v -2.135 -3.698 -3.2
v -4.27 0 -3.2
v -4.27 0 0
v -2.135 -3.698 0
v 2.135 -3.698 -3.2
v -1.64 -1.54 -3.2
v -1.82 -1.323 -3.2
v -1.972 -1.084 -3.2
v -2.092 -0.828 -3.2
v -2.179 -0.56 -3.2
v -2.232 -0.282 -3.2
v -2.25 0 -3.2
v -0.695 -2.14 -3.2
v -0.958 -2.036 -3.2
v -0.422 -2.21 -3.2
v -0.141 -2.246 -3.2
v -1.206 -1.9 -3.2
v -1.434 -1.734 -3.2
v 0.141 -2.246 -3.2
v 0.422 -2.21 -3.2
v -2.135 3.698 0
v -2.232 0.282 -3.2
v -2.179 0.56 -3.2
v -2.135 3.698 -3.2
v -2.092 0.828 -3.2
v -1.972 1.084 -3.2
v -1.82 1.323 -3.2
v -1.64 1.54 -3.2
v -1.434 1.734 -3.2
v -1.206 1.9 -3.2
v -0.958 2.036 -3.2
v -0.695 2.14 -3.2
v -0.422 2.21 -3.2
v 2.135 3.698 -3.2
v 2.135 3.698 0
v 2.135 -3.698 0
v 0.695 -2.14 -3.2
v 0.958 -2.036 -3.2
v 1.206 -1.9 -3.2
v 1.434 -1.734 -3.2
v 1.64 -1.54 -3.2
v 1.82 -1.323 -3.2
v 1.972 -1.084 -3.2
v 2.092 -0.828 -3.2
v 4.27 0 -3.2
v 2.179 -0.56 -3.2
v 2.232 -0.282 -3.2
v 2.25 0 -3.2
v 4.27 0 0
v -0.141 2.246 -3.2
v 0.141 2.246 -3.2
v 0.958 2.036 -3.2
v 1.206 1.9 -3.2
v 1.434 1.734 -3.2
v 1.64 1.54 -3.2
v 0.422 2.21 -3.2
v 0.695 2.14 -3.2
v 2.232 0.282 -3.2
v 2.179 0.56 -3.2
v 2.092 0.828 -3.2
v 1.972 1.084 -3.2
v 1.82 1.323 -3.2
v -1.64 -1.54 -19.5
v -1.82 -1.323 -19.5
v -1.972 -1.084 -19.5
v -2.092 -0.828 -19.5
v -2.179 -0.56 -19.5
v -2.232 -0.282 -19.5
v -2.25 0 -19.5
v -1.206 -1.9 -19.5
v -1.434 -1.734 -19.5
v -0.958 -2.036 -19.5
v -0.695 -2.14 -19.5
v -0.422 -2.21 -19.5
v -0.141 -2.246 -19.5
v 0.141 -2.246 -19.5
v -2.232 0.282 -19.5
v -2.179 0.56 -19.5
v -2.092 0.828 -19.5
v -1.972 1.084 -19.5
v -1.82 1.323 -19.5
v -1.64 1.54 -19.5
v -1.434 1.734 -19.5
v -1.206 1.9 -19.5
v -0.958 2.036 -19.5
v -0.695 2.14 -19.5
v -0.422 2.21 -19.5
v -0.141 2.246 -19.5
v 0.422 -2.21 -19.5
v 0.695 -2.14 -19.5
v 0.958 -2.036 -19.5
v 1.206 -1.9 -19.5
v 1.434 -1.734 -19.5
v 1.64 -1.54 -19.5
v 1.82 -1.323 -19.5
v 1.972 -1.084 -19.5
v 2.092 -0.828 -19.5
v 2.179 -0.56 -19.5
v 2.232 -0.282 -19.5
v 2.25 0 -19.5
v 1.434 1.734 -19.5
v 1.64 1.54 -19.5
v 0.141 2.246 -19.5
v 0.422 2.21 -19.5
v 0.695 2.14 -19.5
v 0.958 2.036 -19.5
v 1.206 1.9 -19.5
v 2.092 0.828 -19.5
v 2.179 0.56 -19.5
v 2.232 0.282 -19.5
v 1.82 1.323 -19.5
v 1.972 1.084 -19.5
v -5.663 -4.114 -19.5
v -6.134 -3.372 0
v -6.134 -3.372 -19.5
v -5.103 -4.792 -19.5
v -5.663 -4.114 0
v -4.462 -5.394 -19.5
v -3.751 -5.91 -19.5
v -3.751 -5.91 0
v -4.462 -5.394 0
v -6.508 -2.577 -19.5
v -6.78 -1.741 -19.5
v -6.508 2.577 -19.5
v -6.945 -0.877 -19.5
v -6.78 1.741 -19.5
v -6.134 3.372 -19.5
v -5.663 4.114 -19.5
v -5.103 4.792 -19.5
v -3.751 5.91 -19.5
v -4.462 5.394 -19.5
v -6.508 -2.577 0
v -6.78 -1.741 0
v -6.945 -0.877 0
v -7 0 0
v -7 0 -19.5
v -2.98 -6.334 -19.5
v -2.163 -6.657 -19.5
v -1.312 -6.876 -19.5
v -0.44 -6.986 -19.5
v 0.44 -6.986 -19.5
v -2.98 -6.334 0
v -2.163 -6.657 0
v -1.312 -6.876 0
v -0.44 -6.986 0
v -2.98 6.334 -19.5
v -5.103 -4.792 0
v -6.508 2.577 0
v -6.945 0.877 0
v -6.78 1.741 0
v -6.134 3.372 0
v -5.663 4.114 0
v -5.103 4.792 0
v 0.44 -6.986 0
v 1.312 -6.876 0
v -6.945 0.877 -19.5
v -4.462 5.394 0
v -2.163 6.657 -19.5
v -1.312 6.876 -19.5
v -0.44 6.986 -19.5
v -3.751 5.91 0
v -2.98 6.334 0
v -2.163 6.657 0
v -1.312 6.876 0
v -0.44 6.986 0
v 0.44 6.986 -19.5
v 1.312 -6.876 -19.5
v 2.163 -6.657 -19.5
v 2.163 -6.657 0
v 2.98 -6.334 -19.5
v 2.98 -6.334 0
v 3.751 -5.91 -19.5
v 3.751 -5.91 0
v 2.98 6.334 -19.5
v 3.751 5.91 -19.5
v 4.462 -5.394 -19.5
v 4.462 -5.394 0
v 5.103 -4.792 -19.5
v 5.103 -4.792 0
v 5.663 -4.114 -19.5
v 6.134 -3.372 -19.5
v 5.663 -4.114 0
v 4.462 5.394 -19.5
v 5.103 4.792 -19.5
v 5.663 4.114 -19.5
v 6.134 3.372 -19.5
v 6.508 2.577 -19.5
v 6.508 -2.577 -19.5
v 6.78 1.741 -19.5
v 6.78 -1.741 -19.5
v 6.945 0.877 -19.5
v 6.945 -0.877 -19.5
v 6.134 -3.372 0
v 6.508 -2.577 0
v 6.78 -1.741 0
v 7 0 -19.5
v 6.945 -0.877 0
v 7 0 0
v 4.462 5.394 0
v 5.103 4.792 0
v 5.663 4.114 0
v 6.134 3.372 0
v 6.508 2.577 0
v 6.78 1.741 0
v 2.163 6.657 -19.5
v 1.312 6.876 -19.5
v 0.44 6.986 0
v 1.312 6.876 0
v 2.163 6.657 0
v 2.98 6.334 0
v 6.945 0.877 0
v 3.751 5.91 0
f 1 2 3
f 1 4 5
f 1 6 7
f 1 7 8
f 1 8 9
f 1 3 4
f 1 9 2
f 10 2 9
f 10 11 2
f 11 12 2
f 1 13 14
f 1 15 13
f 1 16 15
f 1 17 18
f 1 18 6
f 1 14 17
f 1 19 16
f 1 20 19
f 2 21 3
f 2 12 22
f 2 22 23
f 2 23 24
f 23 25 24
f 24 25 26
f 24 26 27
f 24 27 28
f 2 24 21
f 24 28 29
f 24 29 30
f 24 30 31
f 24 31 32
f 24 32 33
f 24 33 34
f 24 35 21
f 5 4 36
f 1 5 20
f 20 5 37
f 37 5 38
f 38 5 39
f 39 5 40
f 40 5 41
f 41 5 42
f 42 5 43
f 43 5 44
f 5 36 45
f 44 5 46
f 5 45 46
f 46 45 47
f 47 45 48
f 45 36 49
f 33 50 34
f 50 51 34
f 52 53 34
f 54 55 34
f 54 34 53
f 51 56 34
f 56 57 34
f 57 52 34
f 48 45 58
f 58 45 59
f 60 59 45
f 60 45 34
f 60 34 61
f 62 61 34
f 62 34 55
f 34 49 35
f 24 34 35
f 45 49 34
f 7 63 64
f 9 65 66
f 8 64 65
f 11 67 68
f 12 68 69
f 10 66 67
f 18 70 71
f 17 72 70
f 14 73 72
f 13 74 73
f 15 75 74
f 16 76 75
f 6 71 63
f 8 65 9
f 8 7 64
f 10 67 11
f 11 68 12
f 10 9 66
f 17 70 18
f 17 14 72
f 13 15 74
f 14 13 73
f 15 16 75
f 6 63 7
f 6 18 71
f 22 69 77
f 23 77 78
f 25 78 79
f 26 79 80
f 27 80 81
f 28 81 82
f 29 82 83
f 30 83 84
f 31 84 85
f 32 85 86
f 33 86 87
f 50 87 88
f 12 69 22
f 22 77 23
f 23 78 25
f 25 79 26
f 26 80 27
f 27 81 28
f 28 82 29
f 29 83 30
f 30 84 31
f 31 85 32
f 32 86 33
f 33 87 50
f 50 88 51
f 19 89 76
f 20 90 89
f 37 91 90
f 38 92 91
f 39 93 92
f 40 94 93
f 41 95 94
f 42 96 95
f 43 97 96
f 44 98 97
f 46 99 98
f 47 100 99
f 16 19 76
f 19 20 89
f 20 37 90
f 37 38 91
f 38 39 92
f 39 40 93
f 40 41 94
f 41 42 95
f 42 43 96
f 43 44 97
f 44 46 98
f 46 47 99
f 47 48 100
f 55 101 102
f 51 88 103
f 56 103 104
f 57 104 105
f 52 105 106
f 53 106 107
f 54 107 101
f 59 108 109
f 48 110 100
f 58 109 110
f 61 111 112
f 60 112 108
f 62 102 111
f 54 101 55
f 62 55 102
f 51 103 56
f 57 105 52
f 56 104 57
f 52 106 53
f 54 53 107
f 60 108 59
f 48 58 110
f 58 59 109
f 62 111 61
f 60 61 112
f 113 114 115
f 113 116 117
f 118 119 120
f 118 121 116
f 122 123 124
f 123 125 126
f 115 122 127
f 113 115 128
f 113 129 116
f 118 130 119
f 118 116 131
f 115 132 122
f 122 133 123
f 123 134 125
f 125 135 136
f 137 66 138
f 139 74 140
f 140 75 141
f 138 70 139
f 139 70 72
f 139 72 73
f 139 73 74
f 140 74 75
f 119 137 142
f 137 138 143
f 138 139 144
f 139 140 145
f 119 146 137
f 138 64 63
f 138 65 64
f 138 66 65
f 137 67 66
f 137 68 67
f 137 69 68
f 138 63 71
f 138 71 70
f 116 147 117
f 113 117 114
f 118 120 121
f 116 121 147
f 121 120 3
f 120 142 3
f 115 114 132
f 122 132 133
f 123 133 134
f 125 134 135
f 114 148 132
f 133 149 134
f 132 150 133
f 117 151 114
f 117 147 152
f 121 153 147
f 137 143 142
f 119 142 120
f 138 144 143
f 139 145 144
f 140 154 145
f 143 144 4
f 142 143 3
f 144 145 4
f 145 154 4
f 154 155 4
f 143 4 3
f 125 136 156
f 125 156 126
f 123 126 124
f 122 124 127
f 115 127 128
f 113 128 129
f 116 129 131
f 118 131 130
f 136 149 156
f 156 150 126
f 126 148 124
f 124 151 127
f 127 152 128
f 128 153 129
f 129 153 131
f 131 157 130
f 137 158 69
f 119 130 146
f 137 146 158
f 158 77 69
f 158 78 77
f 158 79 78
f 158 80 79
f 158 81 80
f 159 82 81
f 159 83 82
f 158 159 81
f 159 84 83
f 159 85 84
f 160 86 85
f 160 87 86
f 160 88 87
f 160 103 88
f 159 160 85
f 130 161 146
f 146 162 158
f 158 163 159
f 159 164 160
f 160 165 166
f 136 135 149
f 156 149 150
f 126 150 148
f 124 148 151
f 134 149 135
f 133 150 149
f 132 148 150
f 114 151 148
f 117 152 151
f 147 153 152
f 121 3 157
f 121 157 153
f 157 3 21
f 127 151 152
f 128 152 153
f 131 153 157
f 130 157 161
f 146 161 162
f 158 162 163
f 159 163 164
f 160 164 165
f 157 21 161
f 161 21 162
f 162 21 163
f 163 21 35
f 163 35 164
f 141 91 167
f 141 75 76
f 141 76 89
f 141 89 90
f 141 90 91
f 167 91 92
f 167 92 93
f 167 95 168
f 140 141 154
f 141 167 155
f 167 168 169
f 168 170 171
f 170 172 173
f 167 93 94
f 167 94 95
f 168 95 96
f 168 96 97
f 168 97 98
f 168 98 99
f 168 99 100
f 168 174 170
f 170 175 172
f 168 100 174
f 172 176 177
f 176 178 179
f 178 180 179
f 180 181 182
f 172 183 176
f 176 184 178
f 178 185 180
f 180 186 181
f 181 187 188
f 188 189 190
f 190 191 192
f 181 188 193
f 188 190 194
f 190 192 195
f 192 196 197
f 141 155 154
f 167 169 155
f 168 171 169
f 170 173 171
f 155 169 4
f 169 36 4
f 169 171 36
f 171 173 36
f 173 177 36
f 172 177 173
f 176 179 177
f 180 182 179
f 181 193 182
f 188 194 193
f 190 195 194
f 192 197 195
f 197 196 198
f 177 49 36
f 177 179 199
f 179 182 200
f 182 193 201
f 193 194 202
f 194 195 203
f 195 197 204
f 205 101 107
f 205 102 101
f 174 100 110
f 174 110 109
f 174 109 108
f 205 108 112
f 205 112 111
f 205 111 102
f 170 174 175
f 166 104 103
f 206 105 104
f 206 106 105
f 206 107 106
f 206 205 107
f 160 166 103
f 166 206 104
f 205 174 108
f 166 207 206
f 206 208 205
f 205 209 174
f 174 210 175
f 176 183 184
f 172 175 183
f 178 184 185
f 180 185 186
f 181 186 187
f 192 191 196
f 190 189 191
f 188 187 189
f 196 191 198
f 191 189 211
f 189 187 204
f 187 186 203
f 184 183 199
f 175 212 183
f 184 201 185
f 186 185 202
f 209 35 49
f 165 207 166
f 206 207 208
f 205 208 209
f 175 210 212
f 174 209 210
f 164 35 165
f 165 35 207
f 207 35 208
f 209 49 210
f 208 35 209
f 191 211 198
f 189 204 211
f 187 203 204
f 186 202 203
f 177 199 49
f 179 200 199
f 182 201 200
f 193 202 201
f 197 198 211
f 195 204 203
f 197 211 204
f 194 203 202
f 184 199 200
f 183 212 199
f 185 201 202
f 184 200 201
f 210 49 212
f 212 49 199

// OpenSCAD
$fn = 50;

difference() {
	union() {
		translate(v = [0, 0, -19.5]) {
			cylinder(h = 19.5, r = 7.0);
		}
	}
	union() {
		translate(v = [0, 0, 0]) {
			rotate(a = [0, 0, 0]) {
				difference() {
					union() {
						translate(v = [0, 0, -3.2]) {
							linear_extrude(height = 3.2) {
								polygon(points = [[4.2698, 0.0], [2.1349000000000005, 3.697755269078796], [-2.134899999999999, 3.6977552690787965], [-4.2698, 5.228996902999369e-16], [-2.134900000000002, -3.6977552690787956], [2.1348999999999974, -3.697755269078798]]);
							}
						}
					}
					union();
				}
			}
		}
		#translate(v = [0, 0, -100.0]) {
			cylinder(h = 200, r = 2.25);
		}
	}
}
